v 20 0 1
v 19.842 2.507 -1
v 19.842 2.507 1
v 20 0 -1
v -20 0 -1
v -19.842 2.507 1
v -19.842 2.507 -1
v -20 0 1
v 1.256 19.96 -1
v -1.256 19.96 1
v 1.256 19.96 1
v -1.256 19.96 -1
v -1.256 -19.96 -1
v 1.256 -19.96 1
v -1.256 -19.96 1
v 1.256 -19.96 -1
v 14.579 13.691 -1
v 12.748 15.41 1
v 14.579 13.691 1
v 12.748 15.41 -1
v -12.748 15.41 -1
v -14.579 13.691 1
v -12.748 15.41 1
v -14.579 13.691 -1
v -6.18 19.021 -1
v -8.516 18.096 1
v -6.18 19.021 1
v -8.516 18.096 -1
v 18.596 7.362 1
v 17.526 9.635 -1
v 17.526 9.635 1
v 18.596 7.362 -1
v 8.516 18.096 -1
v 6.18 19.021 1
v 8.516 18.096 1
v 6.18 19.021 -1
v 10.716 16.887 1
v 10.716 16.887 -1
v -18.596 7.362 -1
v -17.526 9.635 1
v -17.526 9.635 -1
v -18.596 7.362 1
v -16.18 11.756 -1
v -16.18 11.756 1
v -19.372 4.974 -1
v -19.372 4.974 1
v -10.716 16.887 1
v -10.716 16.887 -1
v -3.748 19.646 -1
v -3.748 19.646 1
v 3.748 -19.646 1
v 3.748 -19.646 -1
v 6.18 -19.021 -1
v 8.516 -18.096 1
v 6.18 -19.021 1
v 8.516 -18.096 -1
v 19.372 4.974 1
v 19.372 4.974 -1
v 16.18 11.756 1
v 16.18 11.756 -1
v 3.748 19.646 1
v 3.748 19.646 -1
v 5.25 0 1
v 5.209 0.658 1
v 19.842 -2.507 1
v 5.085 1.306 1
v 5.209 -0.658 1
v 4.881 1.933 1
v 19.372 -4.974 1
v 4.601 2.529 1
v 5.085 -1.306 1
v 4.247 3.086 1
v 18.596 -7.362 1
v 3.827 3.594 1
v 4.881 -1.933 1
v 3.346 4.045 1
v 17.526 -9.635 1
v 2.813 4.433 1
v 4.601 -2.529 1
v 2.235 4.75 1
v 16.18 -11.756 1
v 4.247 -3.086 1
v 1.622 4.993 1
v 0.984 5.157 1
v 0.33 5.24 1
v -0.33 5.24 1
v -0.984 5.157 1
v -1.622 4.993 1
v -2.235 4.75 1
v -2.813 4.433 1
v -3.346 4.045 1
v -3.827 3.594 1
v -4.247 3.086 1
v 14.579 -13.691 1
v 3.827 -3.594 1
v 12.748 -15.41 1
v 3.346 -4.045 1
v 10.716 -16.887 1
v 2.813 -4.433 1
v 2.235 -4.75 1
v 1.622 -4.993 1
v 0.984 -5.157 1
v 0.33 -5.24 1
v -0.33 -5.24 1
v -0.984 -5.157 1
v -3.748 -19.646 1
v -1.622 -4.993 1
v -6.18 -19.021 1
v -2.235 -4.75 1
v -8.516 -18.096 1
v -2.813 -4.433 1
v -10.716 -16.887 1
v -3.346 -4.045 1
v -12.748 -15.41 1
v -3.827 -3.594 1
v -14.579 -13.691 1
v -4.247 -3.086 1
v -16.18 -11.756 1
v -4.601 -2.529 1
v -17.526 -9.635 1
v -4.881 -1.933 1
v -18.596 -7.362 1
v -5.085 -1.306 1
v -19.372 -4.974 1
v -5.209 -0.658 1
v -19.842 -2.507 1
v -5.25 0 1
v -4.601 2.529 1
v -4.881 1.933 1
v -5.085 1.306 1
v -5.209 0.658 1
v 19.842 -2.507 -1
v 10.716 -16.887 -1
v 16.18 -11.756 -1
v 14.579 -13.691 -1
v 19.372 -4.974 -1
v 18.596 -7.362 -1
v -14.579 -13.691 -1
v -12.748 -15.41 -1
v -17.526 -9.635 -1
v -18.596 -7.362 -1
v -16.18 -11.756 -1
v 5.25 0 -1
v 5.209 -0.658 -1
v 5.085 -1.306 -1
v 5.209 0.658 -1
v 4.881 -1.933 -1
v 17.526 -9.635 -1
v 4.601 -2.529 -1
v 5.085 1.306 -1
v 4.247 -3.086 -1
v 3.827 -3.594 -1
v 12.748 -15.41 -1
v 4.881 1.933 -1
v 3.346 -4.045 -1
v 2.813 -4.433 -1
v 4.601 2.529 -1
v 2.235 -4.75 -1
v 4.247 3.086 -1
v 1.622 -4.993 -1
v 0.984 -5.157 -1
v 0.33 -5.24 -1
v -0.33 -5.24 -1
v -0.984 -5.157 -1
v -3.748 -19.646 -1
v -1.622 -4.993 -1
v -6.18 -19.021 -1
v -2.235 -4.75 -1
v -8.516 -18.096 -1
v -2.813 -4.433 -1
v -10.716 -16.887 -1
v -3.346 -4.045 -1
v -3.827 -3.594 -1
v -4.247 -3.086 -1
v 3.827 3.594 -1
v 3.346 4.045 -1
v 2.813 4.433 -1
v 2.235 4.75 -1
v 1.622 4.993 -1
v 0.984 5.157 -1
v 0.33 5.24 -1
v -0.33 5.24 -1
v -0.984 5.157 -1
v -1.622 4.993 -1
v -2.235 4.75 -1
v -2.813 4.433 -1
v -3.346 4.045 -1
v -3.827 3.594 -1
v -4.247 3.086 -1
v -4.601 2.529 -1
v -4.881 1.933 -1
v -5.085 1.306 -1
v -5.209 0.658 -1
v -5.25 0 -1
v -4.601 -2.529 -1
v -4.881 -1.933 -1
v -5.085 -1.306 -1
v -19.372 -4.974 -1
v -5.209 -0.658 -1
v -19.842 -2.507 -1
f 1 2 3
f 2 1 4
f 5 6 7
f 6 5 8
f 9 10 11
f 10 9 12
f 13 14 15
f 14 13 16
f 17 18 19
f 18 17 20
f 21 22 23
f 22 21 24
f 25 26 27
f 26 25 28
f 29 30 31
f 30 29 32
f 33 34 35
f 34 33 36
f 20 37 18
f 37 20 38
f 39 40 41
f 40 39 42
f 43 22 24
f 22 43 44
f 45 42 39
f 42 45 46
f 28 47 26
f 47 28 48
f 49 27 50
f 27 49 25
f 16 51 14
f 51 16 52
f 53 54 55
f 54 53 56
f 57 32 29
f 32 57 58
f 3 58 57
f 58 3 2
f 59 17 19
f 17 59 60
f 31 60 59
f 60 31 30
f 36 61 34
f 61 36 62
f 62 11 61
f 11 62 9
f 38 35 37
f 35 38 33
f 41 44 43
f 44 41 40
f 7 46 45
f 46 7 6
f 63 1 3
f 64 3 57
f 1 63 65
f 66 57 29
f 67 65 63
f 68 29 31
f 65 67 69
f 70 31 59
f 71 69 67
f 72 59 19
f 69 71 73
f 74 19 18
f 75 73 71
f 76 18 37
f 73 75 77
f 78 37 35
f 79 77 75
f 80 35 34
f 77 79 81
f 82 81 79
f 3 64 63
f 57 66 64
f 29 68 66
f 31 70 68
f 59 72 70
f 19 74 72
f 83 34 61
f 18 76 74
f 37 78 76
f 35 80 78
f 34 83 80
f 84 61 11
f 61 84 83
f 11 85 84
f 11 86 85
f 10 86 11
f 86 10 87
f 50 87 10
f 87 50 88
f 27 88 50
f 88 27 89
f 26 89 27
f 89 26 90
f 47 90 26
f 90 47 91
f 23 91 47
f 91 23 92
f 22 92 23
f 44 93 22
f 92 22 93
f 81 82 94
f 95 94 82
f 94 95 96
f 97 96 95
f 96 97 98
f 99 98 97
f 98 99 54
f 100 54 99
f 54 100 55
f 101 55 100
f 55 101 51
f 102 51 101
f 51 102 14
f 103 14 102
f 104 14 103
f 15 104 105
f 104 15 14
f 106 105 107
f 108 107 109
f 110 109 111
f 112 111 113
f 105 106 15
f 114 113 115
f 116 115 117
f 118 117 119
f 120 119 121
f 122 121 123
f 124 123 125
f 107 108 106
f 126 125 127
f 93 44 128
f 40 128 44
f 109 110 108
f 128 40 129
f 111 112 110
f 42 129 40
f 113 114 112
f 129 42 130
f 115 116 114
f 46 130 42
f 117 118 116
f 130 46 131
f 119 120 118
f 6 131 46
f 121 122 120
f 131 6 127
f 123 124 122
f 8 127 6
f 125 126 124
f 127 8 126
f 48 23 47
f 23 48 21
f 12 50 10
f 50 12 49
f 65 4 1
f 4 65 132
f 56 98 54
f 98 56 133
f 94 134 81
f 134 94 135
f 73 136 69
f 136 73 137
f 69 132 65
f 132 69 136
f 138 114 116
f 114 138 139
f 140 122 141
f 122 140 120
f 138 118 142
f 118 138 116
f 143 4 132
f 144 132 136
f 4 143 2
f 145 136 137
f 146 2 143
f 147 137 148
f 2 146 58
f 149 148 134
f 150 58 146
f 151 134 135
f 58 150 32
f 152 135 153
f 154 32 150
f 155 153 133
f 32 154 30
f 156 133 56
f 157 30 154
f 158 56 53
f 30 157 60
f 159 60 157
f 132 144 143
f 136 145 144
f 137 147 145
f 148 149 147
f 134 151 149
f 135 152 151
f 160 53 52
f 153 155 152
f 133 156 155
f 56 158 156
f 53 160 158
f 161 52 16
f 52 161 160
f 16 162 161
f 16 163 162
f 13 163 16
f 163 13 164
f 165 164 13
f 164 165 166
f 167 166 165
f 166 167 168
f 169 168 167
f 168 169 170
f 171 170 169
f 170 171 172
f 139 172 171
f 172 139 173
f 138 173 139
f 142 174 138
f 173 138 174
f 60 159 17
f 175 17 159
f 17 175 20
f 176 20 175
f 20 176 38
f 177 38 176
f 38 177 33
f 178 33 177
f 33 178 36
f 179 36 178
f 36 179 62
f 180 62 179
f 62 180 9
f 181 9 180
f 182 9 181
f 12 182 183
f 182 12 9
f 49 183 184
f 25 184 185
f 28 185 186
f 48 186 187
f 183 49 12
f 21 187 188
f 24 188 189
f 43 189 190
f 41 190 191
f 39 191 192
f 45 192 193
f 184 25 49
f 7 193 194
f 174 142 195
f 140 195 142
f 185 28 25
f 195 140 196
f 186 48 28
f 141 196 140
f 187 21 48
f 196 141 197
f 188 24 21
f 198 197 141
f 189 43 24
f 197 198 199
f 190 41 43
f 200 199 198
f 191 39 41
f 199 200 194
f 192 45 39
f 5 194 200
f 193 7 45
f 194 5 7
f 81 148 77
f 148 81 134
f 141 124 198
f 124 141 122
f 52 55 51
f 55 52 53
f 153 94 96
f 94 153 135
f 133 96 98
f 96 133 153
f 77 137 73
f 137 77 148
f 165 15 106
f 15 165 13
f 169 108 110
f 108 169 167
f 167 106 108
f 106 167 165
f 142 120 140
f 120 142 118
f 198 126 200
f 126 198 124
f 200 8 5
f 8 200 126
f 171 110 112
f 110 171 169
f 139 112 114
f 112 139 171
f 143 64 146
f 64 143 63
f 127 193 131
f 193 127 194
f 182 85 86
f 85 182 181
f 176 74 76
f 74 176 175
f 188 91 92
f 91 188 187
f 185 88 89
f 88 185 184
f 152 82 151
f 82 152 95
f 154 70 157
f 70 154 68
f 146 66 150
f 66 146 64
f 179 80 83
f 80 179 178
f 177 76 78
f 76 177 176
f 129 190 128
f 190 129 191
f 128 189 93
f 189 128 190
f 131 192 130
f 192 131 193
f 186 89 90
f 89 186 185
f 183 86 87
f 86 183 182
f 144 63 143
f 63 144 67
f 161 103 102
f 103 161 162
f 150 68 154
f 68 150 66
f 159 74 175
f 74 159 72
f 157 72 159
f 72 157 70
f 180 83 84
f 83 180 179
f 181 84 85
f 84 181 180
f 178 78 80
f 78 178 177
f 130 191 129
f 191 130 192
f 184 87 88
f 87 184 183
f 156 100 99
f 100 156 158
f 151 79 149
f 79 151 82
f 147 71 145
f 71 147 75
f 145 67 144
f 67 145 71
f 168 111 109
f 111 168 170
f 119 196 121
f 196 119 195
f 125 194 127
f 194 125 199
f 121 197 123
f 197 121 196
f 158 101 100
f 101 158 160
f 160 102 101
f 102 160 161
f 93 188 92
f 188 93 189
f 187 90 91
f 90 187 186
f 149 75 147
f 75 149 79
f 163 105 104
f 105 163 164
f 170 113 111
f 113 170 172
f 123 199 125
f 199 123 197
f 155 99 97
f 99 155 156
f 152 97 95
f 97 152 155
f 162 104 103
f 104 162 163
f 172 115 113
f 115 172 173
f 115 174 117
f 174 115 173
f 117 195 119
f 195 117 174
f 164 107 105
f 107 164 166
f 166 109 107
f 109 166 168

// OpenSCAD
$fn = 50;


difference() {
	union() {
		translate(v = [0, 0, -1.0000000000]) {
			cylinder(h = 2, r = 20.0000000000);
		}
	}
	union() {
		translate(v = [0, 0, -100.0000000000]) {
			cylinder(h = 200, r = 5.2500000000);
		}
	}
}
